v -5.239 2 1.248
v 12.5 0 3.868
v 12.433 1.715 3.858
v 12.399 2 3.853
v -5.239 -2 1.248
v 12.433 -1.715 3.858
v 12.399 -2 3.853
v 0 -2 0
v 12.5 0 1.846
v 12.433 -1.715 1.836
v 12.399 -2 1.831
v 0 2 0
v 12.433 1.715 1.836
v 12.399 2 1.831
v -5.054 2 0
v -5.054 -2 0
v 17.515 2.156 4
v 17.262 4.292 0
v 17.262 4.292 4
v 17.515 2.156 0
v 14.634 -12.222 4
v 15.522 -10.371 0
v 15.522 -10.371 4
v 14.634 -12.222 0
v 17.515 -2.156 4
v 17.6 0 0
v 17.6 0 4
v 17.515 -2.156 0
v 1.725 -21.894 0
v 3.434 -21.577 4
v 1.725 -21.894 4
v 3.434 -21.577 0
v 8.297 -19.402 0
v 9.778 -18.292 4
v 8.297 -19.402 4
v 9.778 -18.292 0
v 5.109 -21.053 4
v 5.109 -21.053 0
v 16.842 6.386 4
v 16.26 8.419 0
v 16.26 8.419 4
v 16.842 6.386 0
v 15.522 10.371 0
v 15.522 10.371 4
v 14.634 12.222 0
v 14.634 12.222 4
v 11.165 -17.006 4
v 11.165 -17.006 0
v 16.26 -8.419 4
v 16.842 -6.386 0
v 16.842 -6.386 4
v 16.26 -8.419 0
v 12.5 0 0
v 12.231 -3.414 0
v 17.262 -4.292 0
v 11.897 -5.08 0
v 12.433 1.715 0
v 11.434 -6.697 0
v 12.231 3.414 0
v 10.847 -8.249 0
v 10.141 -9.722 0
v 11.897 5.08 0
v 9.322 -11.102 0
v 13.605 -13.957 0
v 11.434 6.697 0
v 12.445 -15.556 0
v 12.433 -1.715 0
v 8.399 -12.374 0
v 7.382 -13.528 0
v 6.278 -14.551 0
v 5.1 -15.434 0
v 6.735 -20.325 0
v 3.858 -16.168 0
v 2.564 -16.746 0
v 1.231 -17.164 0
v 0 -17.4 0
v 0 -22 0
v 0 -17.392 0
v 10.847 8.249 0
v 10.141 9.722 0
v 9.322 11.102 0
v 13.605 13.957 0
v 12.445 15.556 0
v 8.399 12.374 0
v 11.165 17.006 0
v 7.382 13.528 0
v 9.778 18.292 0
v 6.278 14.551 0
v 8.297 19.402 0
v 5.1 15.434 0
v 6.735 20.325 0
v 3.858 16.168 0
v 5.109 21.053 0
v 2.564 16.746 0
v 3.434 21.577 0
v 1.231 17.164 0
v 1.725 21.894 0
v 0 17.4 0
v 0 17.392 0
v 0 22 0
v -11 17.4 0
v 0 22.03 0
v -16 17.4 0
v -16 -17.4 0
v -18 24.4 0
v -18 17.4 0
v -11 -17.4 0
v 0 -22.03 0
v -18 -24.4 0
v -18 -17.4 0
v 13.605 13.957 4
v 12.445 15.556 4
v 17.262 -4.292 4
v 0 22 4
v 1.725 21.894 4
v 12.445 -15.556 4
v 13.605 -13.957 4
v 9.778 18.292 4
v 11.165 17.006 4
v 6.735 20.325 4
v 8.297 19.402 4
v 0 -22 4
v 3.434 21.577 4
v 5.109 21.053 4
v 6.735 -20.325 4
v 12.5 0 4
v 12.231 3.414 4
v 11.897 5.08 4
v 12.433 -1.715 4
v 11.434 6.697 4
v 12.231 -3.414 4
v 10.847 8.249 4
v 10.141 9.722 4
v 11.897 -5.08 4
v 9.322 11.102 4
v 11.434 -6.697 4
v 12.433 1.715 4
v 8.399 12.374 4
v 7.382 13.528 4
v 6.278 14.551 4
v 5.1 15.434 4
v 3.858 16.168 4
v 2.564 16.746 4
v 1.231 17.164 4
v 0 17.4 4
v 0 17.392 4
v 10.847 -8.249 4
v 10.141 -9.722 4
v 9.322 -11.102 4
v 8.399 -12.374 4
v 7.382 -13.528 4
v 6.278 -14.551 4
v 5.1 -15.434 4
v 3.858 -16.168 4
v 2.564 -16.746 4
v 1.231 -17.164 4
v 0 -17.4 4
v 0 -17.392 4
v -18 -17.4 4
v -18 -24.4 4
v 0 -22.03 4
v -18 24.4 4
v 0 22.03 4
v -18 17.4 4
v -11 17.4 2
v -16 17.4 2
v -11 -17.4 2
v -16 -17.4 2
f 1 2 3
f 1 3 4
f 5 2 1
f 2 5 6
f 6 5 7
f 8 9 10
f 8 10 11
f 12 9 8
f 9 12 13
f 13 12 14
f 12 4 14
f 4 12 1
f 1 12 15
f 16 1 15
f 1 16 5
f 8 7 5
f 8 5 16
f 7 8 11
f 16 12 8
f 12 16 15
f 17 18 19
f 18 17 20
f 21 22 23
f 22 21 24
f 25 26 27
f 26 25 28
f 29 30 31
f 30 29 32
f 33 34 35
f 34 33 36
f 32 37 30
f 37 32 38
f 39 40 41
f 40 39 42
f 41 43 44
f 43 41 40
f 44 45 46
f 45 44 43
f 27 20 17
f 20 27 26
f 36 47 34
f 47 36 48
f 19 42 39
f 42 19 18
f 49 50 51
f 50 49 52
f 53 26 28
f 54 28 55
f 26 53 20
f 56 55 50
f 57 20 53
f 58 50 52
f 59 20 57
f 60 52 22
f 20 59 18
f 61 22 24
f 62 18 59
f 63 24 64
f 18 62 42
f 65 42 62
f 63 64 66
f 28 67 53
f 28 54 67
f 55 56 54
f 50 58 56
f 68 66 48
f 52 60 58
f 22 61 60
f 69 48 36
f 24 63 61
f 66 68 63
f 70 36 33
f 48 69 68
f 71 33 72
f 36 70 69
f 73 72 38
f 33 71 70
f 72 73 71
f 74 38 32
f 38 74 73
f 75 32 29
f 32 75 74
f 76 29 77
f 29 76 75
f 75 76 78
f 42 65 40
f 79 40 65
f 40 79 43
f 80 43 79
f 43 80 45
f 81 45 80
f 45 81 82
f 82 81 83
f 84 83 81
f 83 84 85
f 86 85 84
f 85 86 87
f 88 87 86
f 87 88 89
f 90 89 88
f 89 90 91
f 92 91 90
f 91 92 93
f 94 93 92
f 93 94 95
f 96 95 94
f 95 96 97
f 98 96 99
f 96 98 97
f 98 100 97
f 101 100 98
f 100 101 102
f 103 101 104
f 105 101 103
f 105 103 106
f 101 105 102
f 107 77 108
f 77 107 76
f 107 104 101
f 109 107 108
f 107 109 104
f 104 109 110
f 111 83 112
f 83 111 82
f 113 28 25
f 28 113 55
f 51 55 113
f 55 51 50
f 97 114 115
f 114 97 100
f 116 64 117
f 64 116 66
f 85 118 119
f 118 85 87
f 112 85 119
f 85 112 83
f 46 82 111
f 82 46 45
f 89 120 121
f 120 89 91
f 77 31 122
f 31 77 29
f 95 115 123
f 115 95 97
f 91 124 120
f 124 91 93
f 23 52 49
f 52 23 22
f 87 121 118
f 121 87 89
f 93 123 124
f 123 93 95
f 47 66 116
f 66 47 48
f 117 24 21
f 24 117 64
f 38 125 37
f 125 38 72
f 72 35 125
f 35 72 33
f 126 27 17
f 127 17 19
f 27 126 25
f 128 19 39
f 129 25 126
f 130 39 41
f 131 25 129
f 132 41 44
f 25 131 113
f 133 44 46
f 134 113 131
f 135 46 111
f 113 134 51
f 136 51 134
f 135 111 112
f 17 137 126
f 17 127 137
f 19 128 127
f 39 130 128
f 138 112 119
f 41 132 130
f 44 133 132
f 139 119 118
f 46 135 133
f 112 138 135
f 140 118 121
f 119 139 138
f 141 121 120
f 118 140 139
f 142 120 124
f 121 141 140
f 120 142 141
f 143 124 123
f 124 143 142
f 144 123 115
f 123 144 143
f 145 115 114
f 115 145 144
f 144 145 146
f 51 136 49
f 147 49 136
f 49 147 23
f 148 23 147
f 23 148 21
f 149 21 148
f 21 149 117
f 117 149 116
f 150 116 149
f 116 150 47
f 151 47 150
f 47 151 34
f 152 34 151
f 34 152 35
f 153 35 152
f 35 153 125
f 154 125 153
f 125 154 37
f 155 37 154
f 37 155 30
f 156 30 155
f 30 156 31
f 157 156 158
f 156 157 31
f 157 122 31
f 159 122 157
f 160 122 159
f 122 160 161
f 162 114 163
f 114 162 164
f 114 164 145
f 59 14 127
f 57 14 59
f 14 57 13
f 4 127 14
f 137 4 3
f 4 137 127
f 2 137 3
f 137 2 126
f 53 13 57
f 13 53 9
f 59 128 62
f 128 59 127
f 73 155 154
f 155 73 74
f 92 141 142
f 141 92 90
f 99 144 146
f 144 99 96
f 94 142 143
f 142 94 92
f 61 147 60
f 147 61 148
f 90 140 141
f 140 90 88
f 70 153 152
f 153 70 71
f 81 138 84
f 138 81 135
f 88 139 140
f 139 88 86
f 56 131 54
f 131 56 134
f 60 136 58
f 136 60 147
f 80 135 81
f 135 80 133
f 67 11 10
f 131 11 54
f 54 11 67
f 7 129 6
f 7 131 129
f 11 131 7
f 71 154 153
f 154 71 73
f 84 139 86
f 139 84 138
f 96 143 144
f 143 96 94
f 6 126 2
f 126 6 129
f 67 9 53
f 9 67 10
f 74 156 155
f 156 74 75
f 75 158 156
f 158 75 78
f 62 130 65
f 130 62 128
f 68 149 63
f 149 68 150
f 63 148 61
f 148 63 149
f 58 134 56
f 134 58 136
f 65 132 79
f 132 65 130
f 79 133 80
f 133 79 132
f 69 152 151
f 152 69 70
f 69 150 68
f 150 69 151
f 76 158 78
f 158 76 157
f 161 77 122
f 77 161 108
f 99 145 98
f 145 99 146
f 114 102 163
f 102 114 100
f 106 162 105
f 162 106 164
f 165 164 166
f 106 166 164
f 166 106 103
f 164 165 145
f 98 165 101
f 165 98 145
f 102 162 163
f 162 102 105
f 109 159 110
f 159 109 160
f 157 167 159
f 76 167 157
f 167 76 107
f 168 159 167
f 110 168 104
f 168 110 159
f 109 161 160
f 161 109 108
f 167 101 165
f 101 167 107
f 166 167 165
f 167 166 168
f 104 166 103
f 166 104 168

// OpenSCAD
$fn=64;
t=4;

difference() {
  s=0.8;
  scale([s,1,1]) cylinder(r=22,h=t);
  translate([-1.5,0,-1]) scale([s,1,1]) cylinder(r=17.5,h=t+2);
  translate([-100,-50,-1]) cube([100,100,100]);
}

leg();
mirror([0,1,0]) leg();

translate([-16,-18.5,0]) cube([5,37,2]);


  
  
difference() {
  rotate([0,-8.4,0]) translate([-5,-2,0]) cube([18.8,4,2]);
  translate([-10,-5,-10]) cube([10,10,10]);
}


module leg() {
  ll=18;
  lcw=7;
  translate([-ll,24.4,0])
  difference() {
    translate([0,-lcw,0]) cube([ll,lcw,t]);
    translate([0,0,-1]) rotate([0,0,-7.5]) cube([ll*2,10,10]);
  }
}
